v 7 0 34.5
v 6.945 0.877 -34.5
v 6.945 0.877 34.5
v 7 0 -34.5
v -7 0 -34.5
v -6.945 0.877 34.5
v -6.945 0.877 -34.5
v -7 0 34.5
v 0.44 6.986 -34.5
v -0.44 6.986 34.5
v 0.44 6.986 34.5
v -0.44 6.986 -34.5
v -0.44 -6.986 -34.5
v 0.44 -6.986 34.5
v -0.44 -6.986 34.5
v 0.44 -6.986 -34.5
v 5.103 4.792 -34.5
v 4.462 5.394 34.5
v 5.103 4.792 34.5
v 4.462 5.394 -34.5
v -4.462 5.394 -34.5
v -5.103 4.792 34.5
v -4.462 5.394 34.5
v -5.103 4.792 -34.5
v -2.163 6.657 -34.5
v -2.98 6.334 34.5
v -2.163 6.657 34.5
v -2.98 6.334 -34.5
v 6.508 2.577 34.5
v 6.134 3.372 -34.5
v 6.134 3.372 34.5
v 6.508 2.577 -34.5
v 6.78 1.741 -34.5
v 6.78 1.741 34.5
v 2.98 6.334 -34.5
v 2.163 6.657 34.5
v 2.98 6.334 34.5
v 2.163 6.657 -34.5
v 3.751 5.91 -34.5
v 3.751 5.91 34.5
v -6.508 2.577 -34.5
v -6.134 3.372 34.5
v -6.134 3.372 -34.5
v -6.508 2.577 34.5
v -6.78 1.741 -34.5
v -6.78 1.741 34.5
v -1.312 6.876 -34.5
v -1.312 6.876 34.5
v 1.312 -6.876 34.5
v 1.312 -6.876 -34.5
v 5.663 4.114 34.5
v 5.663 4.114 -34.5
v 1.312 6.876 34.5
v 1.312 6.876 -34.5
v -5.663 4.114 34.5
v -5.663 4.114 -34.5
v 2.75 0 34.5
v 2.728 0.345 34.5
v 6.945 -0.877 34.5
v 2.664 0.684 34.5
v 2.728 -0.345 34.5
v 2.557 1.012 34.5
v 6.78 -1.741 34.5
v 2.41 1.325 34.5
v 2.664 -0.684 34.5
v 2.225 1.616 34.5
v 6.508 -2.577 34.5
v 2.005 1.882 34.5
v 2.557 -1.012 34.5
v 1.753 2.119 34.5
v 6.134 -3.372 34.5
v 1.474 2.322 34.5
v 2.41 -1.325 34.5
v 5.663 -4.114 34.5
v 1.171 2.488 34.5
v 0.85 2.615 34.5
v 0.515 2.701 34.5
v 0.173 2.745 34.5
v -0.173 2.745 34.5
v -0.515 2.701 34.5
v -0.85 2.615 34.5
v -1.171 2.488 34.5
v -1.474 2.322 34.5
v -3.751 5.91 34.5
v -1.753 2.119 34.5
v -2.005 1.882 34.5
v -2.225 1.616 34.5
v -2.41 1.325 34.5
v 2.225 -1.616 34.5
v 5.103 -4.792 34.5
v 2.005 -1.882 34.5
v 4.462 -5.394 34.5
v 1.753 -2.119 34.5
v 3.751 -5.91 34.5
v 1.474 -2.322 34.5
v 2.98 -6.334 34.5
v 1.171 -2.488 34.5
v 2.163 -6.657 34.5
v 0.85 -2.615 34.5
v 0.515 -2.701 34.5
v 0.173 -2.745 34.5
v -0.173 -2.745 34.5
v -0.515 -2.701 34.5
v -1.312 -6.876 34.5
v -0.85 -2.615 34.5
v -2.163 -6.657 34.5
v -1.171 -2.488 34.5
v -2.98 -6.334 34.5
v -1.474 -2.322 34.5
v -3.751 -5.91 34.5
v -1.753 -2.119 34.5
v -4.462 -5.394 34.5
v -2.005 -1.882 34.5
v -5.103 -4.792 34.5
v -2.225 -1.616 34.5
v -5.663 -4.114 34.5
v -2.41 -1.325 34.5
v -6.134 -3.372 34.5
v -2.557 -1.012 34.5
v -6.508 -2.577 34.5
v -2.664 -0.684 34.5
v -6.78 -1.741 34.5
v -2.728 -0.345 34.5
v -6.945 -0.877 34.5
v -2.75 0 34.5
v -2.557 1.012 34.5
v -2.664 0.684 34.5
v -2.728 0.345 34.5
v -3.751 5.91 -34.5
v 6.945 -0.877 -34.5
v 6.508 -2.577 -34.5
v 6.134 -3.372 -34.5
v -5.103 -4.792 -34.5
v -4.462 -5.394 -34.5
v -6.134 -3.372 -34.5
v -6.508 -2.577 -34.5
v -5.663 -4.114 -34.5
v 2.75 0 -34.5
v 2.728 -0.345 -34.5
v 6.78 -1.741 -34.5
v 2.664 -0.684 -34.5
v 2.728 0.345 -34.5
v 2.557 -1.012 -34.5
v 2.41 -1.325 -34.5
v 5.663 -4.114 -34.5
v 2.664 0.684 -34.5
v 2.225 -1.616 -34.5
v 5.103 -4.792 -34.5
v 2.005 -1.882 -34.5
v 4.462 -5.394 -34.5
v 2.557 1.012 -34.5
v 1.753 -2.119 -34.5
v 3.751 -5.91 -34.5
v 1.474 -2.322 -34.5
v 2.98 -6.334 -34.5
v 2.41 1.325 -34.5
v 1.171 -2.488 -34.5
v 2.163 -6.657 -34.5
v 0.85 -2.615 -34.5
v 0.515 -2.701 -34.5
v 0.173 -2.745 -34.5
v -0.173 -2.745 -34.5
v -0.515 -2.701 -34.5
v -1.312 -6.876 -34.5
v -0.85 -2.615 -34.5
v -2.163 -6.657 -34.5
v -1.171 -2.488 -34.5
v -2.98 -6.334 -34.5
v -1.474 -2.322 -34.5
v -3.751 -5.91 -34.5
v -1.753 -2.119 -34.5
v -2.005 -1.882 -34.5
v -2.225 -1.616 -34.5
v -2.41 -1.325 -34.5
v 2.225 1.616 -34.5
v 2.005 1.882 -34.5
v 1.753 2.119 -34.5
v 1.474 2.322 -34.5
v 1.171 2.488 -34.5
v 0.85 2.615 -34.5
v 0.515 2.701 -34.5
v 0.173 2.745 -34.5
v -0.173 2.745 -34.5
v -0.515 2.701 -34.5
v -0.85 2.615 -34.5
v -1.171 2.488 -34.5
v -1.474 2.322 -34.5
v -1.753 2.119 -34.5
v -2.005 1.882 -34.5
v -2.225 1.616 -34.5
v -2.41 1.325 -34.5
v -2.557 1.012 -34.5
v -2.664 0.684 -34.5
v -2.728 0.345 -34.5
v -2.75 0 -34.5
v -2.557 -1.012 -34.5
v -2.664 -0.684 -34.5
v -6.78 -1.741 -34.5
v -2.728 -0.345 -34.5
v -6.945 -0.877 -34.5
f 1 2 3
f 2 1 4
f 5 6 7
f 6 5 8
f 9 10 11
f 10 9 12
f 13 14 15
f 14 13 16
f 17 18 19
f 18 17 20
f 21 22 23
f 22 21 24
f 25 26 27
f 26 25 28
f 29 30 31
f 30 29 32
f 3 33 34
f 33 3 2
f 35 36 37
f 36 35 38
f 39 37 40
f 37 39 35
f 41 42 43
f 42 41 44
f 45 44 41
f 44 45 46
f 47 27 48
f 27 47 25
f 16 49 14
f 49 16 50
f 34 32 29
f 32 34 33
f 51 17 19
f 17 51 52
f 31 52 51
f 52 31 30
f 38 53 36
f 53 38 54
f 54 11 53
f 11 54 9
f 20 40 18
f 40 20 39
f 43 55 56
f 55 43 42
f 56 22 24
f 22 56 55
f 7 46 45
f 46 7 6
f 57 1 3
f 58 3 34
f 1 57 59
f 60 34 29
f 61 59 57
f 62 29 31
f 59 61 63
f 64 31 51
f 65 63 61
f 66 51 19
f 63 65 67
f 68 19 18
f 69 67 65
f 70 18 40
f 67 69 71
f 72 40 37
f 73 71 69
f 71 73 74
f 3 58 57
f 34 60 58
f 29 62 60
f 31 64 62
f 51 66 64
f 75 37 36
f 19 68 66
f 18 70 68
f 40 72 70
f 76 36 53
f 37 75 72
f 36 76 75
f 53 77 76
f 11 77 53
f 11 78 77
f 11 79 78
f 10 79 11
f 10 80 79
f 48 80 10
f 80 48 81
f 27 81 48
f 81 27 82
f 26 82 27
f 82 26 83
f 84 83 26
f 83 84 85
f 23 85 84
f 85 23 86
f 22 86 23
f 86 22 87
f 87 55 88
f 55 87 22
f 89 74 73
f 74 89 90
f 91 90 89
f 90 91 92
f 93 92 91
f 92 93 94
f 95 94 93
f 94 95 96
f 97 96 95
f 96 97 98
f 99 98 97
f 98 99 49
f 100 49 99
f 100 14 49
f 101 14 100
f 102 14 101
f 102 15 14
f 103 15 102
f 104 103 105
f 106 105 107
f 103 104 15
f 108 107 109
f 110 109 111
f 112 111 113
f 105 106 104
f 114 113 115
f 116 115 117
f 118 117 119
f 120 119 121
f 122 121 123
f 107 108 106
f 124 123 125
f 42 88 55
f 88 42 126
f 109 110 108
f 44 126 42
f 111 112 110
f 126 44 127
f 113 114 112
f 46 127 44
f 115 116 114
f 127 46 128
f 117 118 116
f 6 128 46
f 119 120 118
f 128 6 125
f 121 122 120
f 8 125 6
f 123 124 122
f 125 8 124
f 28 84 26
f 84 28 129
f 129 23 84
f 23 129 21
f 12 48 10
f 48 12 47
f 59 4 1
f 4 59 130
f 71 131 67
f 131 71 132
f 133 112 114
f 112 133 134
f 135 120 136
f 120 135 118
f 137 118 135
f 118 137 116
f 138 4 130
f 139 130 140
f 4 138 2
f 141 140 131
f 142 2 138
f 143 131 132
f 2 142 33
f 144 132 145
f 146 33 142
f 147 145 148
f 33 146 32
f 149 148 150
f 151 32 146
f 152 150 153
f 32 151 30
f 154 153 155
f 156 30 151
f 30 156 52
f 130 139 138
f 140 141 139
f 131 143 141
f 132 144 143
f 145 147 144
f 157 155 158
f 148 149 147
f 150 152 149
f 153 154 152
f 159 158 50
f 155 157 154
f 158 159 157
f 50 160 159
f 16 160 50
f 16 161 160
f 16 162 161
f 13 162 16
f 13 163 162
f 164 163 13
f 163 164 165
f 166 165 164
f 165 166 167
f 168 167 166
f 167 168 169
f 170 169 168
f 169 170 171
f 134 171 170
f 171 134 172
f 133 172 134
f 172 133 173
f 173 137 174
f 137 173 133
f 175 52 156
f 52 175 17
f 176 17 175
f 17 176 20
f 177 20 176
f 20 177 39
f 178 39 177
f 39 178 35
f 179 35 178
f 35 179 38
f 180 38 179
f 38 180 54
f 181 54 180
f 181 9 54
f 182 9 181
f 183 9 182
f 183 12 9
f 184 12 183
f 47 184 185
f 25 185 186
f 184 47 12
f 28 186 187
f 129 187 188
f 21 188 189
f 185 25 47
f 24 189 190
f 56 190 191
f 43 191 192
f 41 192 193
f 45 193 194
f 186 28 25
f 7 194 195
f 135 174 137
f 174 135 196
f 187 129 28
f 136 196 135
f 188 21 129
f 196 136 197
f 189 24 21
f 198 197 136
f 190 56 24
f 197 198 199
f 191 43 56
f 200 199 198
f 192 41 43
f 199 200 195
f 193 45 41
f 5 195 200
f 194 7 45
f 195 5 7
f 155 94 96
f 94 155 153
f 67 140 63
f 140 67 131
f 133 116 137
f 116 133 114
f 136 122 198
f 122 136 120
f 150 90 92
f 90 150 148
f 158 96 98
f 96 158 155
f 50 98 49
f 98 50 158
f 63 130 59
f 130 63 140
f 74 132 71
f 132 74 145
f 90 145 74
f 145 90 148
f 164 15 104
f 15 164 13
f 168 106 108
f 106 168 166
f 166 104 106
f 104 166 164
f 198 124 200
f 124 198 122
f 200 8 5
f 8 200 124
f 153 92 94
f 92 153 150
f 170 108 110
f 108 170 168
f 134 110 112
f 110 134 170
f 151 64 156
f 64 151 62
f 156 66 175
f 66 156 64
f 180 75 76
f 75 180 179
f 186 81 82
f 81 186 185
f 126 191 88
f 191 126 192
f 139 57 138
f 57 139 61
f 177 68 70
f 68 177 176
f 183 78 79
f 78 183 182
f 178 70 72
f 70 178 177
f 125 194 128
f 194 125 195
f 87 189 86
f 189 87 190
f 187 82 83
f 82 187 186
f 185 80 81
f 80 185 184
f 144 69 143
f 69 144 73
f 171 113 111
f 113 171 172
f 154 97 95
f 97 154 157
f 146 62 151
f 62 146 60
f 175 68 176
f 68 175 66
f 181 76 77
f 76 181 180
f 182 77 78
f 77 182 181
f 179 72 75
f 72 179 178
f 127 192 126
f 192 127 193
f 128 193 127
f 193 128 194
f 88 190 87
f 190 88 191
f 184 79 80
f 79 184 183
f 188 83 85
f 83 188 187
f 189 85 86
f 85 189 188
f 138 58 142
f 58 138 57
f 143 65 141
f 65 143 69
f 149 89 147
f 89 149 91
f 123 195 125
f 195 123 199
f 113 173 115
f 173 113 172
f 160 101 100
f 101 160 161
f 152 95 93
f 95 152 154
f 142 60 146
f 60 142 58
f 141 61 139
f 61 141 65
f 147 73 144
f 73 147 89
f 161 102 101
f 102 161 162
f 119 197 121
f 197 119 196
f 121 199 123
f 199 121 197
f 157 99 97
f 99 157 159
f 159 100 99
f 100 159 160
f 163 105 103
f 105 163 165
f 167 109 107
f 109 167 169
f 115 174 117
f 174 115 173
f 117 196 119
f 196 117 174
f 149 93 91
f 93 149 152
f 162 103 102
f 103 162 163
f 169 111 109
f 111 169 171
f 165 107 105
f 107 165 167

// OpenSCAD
$fn = 50;


difference() {
	union() {
		translate(v = [0, 0, -34.5000000000]) {
			cylinder(h = 69, r = 7.0000000000);
		}
	}
	union() {
		translate(v = [0, 0, -100.0000000000]) {
			cylinder(h = 200, r = 2.7500000000);
		}
	}
}
